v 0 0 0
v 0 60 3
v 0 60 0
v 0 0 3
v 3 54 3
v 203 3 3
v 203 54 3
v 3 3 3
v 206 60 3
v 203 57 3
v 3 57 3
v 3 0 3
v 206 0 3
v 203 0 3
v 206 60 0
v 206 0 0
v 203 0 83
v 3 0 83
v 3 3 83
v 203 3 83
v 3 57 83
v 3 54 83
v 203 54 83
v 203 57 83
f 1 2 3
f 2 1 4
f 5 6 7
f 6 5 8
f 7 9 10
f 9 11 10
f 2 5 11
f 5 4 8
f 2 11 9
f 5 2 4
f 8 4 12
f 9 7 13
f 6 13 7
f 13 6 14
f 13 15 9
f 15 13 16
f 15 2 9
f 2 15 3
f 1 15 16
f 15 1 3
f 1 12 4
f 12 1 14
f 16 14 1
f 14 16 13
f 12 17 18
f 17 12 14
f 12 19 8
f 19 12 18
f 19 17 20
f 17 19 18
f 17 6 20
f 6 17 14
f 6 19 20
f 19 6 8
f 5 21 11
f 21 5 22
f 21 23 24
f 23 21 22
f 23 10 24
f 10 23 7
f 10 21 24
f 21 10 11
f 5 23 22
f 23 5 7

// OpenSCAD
// Porta-Guardanapos Estilo Simples - sem texto
// Inspirado no modelo de PLAPadawan

// Parâmetros
largura = 200;       // Largura interna
profundidade = 60;   // Profundidade
altura = 80;         // Altura das laterais
espessura = 3;       // Espessura das paredes

// Base
cube([largura + 2*espessura, profundidade, espessura]);

// Função para criar as laterais lisas
module lateral_lisa() {
    cube([largura, espessura, altura]);
}

// Lado esquerdo
translate([espessura, 0, espessura])
    lateral_lisa();

// Lado direito
translate([espessura, profundidade - espessura, espessura])
    mirror([0, 1, 0])
        lateral_lisa();
